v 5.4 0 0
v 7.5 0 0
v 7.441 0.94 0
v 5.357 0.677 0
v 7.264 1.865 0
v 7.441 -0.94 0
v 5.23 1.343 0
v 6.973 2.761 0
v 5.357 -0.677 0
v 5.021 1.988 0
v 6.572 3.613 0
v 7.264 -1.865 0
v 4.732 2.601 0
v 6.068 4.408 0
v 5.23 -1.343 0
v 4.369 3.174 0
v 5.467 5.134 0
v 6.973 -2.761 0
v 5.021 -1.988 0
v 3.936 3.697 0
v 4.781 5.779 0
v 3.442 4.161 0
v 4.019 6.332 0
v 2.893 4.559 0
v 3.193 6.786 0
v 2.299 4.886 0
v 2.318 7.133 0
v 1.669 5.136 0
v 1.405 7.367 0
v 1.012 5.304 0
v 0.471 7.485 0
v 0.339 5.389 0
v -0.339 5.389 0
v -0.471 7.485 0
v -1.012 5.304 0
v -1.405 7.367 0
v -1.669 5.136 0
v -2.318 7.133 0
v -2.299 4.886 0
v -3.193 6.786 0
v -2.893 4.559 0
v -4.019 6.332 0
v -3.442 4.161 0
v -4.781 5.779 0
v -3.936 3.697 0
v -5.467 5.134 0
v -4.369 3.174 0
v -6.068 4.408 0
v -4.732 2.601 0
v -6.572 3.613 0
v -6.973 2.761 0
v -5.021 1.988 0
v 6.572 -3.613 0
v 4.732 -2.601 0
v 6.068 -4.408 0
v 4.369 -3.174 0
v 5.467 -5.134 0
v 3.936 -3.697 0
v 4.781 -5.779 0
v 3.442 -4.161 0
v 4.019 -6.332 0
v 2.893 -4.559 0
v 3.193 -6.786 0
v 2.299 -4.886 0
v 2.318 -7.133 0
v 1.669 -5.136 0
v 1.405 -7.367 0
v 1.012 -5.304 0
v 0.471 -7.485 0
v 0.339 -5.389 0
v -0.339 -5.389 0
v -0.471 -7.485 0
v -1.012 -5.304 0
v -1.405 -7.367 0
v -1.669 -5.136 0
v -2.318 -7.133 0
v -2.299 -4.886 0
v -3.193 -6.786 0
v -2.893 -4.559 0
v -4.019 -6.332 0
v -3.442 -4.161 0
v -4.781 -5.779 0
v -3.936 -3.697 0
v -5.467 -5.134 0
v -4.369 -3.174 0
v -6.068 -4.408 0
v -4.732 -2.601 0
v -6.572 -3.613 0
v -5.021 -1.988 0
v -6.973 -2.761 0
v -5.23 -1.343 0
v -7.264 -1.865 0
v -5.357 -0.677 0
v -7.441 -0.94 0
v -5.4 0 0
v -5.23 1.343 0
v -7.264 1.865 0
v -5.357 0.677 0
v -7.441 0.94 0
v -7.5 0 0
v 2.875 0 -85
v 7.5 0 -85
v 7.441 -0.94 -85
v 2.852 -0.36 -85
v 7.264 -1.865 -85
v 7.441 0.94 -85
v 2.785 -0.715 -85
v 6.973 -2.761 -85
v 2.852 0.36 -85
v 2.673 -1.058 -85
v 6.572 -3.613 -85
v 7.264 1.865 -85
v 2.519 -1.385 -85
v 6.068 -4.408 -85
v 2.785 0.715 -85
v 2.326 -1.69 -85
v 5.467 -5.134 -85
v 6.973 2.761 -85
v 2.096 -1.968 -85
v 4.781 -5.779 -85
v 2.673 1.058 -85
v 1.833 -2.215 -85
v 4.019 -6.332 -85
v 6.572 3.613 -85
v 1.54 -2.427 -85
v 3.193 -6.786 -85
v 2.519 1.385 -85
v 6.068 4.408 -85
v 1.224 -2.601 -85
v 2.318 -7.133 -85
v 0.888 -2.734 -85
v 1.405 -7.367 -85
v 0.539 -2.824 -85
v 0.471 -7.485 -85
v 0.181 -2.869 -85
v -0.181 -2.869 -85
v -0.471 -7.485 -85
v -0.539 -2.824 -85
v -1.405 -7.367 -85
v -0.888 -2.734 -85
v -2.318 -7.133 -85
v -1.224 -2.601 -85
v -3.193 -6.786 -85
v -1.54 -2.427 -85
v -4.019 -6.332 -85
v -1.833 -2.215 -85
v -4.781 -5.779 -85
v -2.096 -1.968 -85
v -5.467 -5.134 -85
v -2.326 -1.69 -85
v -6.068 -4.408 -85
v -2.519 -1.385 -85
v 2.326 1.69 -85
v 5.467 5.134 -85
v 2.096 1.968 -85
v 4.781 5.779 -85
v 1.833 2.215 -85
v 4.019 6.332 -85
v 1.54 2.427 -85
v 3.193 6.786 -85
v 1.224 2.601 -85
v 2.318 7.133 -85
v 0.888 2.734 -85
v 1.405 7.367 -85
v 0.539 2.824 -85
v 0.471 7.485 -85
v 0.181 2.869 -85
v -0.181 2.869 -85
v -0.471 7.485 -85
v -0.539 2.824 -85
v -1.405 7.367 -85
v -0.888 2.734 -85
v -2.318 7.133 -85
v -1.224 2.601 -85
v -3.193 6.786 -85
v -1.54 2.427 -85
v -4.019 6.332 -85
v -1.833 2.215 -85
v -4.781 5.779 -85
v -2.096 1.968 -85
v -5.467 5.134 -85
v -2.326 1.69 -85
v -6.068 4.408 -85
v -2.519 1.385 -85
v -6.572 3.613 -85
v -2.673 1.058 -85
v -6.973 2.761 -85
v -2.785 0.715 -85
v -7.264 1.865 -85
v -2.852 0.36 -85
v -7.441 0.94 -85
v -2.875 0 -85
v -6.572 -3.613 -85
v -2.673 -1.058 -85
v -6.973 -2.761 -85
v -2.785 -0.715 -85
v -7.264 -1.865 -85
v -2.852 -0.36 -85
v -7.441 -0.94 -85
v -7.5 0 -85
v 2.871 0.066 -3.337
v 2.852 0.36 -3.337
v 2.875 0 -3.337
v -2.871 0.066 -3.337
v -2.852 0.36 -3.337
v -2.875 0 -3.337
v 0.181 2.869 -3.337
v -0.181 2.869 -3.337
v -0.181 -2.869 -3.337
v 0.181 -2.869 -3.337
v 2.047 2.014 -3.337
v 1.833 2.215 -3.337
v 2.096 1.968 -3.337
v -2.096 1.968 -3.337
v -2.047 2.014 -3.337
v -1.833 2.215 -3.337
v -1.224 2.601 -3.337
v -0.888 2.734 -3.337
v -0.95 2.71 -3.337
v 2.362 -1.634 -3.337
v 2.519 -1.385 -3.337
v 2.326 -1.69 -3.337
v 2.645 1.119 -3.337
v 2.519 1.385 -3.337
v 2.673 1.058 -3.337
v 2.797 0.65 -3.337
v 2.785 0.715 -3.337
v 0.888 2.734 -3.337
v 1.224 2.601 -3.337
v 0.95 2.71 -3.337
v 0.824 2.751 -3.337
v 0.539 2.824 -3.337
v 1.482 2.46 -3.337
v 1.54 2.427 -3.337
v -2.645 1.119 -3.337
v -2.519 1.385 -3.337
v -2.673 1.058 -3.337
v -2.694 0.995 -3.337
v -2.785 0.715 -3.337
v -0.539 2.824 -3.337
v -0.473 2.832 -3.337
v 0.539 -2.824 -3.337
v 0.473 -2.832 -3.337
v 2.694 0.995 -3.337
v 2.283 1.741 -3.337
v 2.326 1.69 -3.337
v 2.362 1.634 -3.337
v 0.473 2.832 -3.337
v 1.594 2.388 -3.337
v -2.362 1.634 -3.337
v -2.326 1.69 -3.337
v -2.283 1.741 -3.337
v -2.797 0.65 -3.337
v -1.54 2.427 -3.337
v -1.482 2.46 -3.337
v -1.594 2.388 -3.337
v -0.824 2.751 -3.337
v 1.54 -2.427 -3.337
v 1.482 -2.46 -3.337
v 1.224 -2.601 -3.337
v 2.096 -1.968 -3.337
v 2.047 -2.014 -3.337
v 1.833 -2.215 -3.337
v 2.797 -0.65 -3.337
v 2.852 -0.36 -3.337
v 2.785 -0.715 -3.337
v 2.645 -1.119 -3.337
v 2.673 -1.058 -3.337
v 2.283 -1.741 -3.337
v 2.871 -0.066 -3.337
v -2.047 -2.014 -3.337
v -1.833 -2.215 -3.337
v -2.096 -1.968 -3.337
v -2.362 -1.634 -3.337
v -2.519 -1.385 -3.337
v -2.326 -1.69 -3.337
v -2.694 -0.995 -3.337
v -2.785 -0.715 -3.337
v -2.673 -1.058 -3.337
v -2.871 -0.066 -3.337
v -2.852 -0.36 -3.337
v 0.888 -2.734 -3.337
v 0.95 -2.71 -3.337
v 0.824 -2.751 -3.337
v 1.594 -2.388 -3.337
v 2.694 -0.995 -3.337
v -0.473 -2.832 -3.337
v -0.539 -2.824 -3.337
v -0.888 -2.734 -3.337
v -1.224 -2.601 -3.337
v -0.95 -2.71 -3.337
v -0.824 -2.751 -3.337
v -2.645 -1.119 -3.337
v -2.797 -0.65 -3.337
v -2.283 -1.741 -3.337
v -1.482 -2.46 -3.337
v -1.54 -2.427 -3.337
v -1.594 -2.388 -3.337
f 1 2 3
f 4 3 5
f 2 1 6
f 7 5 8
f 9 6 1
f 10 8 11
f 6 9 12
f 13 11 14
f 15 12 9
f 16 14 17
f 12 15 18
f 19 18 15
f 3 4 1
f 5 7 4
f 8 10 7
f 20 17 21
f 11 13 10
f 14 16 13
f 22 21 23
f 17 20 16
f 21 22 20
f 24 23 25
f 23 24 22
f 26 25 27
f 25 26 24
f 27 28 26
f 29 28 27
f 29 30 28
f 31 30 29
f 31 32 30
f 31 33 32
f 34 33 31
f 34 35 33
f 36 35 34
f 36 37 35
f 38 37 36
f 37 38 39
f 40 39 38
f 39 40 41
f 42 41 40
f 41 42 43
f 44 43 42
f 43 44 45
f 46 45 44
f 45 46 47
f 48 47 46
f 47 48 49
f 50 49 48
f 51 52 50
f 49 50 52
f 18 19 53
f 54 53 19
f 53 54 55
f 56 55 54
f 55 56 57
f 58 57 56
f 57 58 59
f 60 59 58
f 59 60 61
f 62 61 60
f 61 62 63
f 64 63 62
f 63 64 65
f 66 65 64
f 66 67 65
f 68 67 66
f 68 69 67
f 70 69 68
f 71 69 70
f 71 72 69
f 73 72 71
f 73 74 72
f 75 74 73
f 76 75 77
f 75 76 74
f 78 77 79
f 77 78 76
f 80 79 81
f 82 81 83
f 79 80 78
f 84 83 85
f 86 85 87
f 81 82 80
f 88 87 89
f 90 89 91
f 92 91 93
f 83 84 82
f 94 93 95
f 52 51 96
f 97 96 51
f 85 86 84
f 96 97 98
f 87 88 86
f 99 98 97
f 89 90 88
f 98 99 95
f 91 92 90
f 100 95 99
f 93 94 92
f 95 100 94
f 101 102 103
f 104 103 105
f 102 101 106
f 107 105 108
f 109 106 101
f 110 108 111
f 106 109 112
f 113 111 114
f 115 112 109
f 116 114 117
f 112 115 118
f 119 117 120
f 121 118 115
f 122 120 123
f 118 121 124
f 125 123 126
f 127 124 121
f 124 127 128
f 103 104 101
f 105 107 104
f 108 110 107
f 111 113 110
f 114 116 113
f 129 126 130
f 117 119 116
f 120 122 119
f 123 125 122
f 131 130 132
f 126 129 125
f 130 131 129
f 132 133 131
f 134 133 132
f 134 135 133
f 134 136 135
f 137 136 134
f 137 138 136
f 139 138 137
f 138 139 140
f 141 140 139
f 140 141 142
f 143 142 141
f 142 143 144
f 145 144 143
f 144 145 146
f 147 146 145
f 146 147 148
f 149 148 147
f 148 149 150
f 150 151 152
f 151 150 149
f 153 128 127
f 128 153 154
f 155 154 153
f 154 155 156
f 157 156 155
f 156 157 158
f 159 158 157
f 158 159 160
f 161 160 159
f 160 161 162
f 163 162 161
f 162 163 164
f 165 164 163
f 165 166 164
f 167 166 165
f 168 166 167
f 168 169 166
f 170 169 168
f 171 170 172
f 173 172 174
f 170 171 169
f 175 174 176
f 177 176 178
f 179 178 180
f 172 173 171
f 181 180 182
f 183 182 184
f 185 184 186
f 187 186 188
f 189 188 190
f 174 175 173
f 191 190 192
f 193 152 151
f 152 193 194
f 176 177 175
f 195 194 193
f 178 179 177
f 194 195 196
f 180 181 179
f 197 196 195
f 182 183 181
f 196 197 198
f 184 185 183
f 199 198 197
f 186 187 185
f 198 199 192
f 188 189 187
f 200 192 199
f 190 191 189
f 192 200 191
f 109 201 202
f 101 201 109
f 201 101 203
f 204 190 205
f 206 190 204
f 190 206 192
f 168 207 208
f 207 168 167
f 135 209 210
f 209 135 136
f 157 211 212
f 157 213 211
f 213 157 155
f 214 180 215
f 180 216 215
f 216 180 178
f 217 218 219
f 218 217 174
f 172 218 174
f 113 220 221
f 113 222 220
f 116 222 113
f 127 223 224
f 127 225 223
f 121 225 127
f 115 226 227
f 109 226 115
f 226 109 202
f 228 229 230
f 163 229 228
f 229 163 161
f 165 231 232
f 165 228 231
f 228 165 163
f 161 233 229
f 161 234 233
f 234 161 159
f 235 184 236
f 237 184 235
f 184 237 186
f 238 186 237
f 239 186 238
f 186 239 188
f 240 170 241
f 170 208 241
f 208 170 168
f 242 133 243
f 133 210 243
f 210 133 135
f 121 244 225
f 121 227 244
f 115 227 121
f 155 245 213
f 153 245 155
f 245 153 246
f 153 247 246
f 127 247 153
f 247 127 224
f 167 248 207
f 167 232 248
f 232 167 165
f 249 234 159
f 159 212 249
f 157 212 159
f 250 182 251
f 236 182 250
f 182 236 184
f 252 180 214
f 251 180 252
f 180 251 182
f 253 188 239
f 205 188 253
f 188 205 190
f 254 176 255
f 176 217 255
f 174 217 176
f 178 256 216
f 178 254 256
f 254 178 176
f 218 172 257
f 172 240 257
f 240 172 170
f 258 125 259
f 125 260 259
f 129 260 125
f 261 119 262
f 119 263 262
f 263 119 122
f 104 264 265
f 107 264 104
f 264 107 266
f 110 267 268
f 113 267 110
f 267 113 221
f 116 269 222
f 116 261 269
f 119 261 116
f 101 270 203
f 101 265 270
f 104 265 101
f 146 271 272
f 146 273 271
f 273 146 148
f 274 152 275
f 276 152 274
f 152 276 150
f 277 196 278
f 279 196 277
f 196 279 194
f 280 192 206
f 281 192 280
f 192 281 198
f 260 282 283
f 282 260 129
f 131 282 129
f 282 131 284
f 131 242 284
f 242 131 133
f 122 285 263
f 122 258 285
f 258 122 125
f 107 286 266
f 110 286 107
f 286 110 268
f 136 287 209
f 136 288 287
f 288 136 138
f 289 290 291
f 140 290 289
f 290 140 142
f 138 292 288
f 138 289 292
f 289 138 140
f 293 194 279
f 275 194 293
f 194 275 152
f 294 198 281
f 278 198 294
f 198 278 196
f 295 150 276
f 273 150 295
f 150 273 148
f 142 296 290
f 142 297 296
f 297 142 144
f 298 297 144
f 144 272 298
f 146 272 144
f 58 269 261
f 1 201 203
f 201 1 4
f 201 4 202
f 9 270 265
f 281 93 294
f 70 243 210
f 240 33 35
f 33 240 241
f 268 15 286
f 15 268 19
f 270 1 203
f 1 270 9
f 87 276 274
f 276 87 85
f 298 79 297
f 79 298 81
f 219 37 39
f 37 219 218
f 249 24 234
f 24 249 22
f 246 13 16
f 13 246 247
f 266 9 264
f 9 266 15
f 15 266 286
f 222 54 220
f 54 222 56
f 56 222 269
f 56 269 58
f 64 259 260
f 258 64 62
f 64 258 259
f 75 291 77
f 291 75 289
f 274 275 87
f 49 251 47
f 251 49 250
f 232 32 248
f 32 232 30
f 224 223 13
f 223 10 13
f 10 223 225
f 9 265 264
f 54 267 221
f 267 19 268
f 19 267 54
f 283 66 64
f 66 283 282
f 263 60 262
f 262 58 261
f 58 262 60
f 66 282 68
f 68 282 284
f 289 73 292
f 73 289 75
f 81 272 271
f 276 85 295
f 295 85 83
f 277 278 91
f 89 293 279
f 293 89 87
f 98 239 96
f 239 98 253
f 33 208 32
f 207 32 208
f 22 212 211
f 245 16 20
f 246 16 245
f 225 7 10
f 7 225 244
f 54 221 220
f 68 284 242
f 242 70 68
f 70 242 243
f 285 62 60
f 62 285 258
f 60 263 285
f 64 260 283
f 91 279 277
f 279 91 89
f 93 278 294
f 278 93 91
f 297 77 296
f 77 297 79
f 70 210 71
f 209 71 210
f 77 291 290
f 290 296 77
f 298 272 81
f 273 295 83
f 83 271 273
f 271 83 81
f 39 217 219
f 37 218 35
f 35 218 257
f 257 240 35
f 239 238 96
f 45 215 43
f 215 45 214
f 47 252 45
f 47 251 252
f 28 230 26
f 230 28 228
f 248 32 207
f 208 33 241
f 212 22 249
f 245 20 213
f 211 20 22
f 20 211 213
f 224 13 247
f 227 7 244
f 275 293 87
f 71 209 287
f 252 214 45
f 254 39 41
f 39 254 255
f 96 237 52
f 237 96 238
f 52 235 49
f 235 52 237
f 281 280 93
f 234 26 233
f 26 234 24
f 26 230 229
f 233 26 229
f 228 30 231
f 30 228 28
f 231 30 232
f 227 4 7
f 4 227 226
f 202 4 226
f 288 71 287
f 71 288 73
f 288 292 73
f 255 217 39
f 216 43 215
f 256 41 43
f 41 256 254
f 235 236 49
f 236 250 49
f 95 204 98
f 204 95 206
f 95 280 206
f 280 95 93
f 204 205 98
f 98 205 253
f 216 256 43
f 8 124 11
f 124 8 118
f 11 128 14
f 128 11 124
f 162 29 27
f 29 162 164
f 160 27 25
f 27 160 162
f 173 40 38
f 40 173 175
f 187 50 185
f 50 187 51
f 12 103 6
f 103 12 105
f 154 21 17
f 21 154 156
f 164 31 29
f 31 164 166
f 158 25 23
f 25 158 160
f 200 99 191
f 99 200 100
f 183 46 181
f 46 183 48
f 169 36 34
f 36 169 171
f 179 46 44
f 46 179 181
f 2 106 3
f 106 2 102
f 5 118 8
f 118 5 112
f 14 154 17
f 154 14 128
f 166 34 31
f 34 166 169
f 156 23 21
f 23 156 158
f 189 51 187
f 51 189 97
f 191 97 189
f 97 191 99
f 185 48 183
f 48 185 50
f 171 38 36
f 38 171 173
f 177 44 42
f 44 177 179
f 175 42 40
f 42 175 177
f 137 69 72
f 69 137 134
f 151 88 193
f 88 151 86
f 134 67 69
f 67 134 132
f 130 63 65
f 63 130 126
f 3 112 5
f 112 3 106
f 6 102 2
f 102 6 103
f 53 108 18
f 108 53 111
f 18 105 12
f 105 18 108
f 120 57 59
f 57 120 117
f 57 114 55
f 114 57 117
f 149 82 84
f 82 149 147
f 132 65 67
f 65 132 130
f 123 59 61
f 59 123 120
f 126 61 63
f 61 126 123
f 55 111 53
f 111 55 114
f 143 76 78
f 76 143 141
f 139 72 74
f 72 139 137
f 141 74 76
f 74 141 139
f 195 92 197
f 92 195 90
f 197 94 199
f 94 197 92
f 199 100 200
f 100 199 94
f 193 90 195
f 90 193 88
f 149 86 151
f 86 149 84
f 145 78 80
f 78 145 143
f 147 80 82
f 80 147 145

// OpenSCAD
$fn = 50;


difference() {
	union() {
		translate(v = [0, 0, -85.0000000000]) {
			cylinder(h = 85, r = 7.5000000000);
		}
	}
	union() {
		translate(v = [0, 0, 0]) {
			rotate(a = [0, 0, 0]) {
				difference() {
					union() {
						translate(v = [0, 0, -85.0000000000]) {
							cylinder(h = 85, r = 2.6000000000);
						}
						translate(v = [0, 0, -85.0000000000]) {
							cylinder(h = 85, r = 2.8750000000);
						}
						translate(v = [0, 0, -3.7000000000]) {
							cylinder(h = 3.7000000000, r = 7.5000000000, r1 = 2.6000000000, r2 = 5.4000000000);
						}
						translate(v = [0, 0, -85.0000000000]) {
							cylinder(h = 85, r = 2.6000000000);
						}
					}
					union();
				}
			}
		}
	}
}
